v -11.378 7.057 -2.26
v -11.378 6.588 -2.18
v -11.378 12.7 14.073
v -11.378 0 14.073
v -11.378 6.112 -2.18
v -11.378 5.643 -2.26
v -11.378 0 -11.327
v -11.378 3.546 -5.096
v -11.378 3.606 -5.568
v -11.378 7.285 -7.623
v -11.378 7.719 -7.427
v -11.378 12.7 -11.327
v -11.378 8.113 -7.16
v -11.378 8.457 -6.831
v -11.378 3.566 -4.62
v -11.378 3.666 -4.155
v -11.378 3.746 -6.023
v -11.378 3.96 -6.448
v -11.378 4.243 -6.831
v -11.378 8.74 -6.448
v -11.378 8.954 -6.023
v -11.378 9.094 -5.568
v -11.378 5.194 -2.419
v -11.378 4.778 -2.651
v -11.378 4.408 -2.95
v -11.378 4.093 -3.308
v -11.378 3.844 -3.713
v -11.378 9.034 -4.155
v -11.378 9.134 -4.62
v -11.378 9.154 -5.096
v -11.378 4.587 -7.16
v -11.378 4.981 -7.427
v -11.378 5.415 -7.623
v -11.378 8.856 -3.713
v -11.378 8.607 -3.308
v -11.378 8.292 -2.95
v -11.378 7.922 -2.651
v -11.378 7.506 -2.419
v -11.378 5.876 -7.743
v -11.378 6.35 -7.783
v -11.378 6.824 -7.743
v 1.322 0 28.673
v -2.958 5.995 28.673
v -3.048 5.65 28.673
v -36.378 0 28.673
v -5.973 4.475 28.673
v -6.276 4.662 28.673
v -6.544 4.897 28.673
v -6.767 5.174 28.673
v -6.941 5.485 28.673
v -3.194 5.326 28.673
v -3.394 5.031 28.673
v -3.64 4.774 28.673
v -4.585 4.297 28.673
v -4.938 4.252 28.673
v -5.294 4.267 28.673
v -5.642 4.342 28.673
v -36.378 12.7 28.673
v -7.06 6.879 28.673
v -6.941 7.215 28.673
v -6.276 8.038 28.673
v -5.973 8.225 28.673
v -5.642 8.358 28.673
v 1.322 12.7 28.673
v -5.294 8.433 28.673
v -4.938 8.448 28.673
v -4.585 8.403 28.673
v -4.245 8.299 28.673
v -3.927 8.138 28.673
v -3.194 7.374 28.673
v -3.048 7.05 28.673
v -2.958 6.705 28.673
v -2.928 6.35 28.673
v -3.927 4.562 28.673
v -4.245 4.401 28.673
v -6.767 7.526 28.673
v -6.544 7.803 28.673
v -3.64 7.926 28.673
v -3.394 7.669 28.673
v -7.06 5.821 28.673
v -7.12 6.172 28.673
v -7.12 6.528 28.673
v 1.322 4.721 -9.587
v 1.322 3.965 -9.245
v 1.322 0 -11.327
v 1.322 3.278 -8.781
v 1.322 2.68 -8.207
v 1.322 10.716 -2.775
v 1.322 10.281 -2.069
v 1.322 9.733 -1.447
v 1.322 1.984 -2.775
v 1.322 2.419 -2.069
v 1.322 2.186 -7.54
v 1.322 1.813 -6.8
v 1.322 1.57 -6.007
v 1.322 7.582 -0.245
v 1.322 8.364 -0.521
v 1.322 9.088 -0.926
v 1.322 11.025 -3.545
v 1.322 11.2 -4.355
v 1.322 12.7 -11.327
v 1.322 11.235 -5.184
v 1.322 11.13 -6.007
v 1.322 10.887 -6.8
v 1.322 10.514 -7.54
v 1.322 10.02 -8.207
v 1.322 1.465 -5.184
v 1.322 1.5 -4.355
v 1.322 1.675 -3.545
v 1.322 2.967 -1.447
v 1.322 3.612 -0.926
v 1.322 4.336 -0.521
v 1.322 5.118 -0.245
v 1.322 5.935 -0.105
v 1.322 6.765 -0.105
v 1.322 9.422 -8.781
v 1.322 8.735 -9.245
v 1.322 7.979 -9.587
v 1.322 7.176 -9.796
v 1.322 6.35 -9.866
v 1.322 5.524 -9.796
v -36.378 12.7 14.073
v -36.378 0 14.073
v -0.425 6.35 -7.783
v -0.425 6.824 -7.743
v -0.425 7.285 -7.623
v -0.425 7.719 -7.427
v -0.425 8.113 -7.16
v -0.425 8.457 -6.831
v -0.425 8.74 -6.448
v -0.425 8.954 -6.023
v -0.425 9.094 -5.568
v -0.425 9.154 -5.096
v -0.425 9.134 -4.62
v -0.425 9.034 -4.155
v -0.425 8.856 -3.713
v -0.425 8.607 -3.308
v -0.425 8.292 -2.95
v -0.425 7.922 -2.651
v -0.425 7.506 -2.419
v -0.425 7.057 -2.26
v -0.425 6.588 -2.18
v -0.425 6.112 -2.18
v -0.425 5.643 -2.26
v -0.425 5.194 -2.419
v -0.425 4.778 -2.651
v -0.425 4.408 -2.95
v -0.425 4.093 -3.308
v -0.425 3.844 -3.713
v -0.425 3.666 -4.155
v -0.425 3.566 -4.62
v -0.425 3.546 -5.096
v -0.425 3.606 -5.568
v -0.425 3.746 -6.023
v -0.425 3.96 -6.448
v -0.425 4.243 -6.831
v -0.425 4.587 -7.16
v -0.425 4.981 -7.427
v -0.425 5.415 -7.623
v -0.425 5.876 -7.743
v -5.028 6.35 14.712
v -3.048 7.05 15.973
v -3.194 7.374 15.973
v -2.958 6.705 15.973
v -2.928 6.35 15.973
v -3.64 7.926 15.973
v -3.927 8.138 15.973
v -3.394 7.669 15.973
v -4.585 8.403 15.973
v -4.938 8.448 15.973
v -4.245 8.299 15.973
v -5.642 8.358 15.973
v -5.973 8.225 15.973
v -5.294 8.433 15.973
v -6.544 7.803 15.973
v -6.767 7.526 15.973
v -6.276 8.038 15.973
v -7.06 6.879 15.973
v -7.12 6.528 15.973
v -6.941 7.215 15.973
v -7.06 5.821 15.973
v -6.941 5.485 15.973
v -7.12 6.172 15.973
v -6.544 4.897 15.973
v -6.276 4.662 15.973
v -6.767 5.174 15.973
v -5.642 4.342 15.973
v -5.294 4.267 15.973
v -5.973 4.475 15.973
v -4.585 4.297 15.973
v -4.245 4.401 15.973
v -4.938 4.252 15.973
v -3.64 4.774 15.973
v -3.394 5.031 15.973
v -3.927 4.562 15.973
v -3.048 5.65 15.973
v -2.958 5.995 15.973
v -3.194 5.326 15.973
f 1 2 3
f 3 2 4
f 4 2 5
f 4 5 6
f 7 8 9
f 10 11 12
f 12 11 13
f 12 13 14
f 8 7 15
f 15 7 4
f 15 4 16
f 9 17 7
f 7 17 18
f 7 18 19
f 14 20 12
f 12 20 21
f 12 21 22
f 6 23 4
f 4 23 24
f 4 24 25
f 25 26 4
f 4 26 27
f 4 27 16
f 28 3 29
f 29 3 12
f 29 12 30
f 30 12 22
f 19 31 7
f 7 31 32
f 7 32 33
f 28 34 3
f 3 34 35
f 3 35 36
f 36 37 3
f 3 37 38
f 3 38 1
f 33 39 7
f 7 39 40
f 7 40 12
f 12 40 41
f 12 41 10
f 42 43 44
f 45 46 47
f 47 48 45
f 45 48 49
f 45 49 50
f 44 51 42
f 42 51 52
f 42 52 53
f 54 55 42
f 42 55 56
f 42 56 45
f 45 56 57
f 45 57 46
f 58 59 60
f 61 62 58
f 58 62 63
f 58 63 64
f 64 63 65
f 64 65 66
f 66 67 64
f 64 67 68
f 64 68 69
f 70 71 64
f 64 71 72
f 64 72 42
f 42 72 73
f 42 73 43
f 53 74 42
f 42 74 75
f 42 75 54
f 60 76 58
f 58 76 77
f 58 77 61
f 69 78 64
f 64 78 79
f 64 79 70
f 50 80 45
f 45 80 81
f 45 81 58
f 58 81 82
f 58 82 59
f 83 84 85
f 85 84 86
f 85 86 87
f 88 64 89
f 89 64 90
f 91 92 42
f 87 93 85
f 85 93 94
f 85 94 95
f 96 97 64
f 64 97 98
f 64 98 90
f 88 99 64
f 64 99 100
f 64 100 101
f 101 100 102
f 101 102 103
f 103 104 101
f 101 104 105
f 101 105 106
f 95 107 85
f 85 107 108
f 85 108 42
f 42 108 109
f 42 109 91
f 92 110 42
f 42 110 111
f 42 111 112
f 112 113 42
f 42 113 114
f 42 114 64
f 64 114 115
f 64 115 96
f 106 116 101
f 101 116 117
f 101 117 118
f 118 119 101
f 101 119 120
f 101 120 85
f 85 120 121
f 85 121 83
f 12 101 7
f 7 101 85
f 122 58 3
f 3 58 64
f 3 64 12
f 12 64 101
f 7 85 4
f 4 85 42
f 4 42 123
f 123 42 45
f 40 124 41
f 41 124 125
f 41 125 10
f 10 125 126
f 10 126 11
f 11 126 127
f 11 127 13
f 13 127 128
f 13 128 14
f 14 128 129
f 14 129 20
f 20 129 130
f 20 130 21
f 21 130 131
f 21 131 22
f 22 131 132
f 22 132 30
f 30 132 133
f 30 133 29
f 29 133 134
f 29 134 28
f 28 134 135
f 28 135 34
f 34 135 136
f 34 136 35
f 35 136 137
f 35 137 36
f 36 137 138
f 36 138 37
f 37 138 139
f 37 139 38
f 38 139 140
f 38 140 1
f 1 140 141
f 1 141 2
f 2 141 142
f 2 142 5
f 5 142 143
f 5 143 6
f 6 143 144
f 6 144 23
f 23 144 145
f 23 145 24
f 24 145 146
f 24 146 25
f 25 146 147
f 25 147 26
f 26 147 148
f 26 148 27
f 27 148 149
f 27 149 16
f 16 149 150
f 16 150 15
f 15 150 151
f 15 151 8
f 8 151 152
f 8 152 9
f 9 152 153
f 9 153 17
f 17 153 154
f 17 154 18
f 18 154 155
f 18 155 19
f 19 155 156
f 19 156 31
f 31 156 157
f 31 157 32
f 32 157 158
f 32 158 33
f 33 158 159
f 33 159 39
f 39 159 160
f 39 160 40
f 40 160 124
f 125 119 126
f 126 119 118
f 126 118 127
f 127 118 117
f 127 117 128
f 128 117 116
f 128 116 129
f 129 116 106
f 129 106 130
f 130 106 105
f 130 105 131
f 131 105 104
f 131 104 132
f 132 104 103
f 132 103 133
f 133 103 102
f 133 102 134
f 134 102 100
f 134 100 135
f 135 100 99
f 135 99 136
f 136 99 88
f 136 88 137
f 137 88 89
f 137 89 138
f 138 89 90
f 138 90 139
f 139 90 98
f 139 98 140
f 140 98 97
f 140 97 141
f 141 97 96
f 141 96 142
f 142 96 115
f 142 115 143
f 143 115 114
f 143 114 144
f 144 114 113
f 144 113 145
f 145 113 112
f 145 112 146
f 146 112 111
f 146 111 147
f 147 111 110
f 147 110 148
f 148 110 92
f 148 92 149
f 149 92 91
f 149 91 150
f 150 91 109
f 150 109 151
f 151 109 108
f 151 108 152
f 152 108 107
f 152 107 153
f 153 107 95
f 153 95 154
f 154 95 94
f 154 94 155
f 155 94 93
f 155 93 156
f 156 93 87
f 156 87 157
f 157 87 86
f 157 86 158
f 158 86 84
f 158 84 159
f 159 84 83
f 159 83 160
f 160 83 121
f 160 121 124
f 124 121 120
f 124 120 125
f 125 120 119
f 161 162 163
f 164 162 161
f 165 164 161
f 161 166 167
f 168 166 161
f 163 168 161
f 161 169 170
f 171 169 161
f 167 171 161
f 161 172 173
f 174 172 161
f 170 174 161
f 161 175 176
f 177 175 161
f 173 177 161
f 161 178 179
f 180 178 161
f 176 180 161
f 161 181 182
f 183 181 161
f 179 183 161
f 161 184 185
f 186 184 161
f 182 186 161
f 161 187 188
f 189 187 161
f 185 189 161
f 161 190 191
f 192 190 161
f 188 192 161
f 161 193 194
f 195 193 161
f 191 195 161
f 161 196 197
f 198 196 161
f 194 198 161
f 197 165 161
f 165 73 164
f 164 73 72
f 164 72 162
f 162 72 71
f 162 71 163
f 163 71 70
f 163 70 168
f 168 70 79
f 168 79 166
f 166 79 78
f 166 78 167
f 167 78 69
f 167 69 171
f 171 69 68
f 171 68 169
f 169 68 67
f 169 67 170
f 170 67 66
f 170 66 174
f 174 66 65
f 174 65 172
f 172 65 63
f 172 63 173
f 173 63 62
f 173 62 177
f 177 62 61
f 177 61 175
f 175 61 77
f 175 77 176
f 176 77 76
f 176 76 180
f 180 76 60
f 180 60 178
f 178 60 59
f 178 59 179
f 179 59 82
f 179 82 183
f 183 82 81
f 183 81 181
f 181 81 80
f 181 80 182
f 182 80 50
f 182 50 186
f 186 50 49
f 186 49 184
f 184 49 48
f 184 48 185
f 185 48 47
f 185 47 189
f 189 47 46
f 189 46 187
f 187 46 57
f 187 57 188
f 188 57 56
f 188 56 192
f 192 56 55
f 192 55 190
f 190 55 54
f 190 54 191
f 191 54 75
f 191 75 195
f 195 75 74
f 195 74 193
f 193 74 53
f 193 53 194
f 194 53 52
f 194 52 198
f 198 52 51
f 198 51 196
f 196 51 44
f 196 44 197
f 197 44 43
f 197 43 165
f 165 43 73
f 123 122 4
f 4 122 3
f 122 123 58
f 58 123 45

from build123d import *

# Parameters (mm, degrees)
SKETCH1_W                                          = 12.7
SKETCH1_H                                          = 40
BOSS_EXTRUDE1_DEPTH                                = 12.7
CSK_FOR_10_FLAT_HEAD_MACHINE_SCREW_100_D           = 5.6134
CSK_FOR_10_FLAT_HEAD_MACHINE_SCREW_100_DEPTH       = 12.7
CSK_FOR_10_FLAT_HEAD_MACHINE_SCREW_100_CSINK_D     = 9.779
CSK_FOR_10_FLAT_HEAD_MACHINE_SCREW_100_CSINK_ANGLE = 100
CSK_FOR_10_FLAT_HEAD_MACHINE_SCREW_100_TIP         = 1.686435499
TAP_DRILL_FOR_M5X0_8_TAP1_D                        = 4.2
TAP_DRILL_FOR_M5X0_8_TAP1_DEPTH                    = 12.7
TAP_DRILL_FOR_M5X0_8_TAP1_TIP                      = 1.2618073
SKETCH8_W                                          = 14.6
SKETCH8_H                                          = 12.7
BOSS_EXTRUDE2_DEPTH                                = 25


with BuildPart() as part:
    # Sketch1 → Boss-Extrude1 (new body)
    with BuildSketch(Plane(origin=(0, 0, 0), x_dir=(1, 0, 0), z_dir=(0, 1, 0))):
        with Locations((-5.02755102, -8.673469388)):
            Rectangle(SKETCH1_W, SKETCH1_H)
    extrude(amount=BOSS_EXTRUDE1_DEPTH)

    # CSK for #10 Flat Head Machine Screw (100)1
    with Locations(Plane(origin=(1.32244898, 0, 0), x_dir=(0, 0, -1), z_dir=(1, 0, 0))):
        with Locations((4.976530612, 6.35)):
            CounterSinkHole(CSK_FOR_10_FLAT_HEAD_MACHINE_SCREW_100_D / 2, CSK_FOR_10_FLAT_HEAD_MACHINE_SCREW_100_CSINK_D / 2, depth=CSK_FOR_10_FLAT_HEAD_MACHINE_SCREW_100_DEPTH, counter_sink_angle=CSK_FOR_10_FLAT_HEAD_MACHINE_SCREW_100_CSINK_ANGLE)
            with Locations((0, 0, -(CSK_FOR_10_FLAT_HEAD_MACHINE_SCREW_100_DEPTH + CSK_FOR_10_FLAT_HEAD_MACHINE_SCREW_100_TIP / 2))):  # 118° drill point
                Cone(0, CSK_FOR_10_FLAT_HEAD_MACHINE_SCREW_100_D / 2, CSK_FOR_10_FLAT_HEAD_MACHINE_SCREW_100_TIP, mode=Mode.SUBTRACT)

    # Tap Drill for M5x0.8 Tap1
    with Locations(Plane.XY.offset(28.673469388)):
        with Locations((-5.02755102, 6.35)):
            Hole(TAP_DRILL_FOR_M5X0_8_TAP1_D / 2, depth=TAP_DRILL_FOR_M5X0_8_TAP1_DEPTH)
            with Locations((0, 0, -(TAP_DRILL_FOR_M5X0_8_TAP1_DEPTH + TAP_DRILL_FOR_M5X0_8_TAP1_TIP / 2))):  # 118° drill point
                Cone(0, TAP_DRILL_FOR_M5X0_8_TAP1_D / 2, TAP_DRILL_FOR_M5X0_8_TAP1_TIP, mode=Mode.SUBTRACT)

    # Sketch8 → Boss-Extrude2 (add)
    with BuildSketch(Plane.ZY.offset(11.37755102)):
        with Locations((21.373469388, 6.35)):
            Rectangle(SKETCH8_W, SKETCH8_H)
    extrude(amount=BOSS_EXTRUDE2_DEPTH)


solid = part.part
